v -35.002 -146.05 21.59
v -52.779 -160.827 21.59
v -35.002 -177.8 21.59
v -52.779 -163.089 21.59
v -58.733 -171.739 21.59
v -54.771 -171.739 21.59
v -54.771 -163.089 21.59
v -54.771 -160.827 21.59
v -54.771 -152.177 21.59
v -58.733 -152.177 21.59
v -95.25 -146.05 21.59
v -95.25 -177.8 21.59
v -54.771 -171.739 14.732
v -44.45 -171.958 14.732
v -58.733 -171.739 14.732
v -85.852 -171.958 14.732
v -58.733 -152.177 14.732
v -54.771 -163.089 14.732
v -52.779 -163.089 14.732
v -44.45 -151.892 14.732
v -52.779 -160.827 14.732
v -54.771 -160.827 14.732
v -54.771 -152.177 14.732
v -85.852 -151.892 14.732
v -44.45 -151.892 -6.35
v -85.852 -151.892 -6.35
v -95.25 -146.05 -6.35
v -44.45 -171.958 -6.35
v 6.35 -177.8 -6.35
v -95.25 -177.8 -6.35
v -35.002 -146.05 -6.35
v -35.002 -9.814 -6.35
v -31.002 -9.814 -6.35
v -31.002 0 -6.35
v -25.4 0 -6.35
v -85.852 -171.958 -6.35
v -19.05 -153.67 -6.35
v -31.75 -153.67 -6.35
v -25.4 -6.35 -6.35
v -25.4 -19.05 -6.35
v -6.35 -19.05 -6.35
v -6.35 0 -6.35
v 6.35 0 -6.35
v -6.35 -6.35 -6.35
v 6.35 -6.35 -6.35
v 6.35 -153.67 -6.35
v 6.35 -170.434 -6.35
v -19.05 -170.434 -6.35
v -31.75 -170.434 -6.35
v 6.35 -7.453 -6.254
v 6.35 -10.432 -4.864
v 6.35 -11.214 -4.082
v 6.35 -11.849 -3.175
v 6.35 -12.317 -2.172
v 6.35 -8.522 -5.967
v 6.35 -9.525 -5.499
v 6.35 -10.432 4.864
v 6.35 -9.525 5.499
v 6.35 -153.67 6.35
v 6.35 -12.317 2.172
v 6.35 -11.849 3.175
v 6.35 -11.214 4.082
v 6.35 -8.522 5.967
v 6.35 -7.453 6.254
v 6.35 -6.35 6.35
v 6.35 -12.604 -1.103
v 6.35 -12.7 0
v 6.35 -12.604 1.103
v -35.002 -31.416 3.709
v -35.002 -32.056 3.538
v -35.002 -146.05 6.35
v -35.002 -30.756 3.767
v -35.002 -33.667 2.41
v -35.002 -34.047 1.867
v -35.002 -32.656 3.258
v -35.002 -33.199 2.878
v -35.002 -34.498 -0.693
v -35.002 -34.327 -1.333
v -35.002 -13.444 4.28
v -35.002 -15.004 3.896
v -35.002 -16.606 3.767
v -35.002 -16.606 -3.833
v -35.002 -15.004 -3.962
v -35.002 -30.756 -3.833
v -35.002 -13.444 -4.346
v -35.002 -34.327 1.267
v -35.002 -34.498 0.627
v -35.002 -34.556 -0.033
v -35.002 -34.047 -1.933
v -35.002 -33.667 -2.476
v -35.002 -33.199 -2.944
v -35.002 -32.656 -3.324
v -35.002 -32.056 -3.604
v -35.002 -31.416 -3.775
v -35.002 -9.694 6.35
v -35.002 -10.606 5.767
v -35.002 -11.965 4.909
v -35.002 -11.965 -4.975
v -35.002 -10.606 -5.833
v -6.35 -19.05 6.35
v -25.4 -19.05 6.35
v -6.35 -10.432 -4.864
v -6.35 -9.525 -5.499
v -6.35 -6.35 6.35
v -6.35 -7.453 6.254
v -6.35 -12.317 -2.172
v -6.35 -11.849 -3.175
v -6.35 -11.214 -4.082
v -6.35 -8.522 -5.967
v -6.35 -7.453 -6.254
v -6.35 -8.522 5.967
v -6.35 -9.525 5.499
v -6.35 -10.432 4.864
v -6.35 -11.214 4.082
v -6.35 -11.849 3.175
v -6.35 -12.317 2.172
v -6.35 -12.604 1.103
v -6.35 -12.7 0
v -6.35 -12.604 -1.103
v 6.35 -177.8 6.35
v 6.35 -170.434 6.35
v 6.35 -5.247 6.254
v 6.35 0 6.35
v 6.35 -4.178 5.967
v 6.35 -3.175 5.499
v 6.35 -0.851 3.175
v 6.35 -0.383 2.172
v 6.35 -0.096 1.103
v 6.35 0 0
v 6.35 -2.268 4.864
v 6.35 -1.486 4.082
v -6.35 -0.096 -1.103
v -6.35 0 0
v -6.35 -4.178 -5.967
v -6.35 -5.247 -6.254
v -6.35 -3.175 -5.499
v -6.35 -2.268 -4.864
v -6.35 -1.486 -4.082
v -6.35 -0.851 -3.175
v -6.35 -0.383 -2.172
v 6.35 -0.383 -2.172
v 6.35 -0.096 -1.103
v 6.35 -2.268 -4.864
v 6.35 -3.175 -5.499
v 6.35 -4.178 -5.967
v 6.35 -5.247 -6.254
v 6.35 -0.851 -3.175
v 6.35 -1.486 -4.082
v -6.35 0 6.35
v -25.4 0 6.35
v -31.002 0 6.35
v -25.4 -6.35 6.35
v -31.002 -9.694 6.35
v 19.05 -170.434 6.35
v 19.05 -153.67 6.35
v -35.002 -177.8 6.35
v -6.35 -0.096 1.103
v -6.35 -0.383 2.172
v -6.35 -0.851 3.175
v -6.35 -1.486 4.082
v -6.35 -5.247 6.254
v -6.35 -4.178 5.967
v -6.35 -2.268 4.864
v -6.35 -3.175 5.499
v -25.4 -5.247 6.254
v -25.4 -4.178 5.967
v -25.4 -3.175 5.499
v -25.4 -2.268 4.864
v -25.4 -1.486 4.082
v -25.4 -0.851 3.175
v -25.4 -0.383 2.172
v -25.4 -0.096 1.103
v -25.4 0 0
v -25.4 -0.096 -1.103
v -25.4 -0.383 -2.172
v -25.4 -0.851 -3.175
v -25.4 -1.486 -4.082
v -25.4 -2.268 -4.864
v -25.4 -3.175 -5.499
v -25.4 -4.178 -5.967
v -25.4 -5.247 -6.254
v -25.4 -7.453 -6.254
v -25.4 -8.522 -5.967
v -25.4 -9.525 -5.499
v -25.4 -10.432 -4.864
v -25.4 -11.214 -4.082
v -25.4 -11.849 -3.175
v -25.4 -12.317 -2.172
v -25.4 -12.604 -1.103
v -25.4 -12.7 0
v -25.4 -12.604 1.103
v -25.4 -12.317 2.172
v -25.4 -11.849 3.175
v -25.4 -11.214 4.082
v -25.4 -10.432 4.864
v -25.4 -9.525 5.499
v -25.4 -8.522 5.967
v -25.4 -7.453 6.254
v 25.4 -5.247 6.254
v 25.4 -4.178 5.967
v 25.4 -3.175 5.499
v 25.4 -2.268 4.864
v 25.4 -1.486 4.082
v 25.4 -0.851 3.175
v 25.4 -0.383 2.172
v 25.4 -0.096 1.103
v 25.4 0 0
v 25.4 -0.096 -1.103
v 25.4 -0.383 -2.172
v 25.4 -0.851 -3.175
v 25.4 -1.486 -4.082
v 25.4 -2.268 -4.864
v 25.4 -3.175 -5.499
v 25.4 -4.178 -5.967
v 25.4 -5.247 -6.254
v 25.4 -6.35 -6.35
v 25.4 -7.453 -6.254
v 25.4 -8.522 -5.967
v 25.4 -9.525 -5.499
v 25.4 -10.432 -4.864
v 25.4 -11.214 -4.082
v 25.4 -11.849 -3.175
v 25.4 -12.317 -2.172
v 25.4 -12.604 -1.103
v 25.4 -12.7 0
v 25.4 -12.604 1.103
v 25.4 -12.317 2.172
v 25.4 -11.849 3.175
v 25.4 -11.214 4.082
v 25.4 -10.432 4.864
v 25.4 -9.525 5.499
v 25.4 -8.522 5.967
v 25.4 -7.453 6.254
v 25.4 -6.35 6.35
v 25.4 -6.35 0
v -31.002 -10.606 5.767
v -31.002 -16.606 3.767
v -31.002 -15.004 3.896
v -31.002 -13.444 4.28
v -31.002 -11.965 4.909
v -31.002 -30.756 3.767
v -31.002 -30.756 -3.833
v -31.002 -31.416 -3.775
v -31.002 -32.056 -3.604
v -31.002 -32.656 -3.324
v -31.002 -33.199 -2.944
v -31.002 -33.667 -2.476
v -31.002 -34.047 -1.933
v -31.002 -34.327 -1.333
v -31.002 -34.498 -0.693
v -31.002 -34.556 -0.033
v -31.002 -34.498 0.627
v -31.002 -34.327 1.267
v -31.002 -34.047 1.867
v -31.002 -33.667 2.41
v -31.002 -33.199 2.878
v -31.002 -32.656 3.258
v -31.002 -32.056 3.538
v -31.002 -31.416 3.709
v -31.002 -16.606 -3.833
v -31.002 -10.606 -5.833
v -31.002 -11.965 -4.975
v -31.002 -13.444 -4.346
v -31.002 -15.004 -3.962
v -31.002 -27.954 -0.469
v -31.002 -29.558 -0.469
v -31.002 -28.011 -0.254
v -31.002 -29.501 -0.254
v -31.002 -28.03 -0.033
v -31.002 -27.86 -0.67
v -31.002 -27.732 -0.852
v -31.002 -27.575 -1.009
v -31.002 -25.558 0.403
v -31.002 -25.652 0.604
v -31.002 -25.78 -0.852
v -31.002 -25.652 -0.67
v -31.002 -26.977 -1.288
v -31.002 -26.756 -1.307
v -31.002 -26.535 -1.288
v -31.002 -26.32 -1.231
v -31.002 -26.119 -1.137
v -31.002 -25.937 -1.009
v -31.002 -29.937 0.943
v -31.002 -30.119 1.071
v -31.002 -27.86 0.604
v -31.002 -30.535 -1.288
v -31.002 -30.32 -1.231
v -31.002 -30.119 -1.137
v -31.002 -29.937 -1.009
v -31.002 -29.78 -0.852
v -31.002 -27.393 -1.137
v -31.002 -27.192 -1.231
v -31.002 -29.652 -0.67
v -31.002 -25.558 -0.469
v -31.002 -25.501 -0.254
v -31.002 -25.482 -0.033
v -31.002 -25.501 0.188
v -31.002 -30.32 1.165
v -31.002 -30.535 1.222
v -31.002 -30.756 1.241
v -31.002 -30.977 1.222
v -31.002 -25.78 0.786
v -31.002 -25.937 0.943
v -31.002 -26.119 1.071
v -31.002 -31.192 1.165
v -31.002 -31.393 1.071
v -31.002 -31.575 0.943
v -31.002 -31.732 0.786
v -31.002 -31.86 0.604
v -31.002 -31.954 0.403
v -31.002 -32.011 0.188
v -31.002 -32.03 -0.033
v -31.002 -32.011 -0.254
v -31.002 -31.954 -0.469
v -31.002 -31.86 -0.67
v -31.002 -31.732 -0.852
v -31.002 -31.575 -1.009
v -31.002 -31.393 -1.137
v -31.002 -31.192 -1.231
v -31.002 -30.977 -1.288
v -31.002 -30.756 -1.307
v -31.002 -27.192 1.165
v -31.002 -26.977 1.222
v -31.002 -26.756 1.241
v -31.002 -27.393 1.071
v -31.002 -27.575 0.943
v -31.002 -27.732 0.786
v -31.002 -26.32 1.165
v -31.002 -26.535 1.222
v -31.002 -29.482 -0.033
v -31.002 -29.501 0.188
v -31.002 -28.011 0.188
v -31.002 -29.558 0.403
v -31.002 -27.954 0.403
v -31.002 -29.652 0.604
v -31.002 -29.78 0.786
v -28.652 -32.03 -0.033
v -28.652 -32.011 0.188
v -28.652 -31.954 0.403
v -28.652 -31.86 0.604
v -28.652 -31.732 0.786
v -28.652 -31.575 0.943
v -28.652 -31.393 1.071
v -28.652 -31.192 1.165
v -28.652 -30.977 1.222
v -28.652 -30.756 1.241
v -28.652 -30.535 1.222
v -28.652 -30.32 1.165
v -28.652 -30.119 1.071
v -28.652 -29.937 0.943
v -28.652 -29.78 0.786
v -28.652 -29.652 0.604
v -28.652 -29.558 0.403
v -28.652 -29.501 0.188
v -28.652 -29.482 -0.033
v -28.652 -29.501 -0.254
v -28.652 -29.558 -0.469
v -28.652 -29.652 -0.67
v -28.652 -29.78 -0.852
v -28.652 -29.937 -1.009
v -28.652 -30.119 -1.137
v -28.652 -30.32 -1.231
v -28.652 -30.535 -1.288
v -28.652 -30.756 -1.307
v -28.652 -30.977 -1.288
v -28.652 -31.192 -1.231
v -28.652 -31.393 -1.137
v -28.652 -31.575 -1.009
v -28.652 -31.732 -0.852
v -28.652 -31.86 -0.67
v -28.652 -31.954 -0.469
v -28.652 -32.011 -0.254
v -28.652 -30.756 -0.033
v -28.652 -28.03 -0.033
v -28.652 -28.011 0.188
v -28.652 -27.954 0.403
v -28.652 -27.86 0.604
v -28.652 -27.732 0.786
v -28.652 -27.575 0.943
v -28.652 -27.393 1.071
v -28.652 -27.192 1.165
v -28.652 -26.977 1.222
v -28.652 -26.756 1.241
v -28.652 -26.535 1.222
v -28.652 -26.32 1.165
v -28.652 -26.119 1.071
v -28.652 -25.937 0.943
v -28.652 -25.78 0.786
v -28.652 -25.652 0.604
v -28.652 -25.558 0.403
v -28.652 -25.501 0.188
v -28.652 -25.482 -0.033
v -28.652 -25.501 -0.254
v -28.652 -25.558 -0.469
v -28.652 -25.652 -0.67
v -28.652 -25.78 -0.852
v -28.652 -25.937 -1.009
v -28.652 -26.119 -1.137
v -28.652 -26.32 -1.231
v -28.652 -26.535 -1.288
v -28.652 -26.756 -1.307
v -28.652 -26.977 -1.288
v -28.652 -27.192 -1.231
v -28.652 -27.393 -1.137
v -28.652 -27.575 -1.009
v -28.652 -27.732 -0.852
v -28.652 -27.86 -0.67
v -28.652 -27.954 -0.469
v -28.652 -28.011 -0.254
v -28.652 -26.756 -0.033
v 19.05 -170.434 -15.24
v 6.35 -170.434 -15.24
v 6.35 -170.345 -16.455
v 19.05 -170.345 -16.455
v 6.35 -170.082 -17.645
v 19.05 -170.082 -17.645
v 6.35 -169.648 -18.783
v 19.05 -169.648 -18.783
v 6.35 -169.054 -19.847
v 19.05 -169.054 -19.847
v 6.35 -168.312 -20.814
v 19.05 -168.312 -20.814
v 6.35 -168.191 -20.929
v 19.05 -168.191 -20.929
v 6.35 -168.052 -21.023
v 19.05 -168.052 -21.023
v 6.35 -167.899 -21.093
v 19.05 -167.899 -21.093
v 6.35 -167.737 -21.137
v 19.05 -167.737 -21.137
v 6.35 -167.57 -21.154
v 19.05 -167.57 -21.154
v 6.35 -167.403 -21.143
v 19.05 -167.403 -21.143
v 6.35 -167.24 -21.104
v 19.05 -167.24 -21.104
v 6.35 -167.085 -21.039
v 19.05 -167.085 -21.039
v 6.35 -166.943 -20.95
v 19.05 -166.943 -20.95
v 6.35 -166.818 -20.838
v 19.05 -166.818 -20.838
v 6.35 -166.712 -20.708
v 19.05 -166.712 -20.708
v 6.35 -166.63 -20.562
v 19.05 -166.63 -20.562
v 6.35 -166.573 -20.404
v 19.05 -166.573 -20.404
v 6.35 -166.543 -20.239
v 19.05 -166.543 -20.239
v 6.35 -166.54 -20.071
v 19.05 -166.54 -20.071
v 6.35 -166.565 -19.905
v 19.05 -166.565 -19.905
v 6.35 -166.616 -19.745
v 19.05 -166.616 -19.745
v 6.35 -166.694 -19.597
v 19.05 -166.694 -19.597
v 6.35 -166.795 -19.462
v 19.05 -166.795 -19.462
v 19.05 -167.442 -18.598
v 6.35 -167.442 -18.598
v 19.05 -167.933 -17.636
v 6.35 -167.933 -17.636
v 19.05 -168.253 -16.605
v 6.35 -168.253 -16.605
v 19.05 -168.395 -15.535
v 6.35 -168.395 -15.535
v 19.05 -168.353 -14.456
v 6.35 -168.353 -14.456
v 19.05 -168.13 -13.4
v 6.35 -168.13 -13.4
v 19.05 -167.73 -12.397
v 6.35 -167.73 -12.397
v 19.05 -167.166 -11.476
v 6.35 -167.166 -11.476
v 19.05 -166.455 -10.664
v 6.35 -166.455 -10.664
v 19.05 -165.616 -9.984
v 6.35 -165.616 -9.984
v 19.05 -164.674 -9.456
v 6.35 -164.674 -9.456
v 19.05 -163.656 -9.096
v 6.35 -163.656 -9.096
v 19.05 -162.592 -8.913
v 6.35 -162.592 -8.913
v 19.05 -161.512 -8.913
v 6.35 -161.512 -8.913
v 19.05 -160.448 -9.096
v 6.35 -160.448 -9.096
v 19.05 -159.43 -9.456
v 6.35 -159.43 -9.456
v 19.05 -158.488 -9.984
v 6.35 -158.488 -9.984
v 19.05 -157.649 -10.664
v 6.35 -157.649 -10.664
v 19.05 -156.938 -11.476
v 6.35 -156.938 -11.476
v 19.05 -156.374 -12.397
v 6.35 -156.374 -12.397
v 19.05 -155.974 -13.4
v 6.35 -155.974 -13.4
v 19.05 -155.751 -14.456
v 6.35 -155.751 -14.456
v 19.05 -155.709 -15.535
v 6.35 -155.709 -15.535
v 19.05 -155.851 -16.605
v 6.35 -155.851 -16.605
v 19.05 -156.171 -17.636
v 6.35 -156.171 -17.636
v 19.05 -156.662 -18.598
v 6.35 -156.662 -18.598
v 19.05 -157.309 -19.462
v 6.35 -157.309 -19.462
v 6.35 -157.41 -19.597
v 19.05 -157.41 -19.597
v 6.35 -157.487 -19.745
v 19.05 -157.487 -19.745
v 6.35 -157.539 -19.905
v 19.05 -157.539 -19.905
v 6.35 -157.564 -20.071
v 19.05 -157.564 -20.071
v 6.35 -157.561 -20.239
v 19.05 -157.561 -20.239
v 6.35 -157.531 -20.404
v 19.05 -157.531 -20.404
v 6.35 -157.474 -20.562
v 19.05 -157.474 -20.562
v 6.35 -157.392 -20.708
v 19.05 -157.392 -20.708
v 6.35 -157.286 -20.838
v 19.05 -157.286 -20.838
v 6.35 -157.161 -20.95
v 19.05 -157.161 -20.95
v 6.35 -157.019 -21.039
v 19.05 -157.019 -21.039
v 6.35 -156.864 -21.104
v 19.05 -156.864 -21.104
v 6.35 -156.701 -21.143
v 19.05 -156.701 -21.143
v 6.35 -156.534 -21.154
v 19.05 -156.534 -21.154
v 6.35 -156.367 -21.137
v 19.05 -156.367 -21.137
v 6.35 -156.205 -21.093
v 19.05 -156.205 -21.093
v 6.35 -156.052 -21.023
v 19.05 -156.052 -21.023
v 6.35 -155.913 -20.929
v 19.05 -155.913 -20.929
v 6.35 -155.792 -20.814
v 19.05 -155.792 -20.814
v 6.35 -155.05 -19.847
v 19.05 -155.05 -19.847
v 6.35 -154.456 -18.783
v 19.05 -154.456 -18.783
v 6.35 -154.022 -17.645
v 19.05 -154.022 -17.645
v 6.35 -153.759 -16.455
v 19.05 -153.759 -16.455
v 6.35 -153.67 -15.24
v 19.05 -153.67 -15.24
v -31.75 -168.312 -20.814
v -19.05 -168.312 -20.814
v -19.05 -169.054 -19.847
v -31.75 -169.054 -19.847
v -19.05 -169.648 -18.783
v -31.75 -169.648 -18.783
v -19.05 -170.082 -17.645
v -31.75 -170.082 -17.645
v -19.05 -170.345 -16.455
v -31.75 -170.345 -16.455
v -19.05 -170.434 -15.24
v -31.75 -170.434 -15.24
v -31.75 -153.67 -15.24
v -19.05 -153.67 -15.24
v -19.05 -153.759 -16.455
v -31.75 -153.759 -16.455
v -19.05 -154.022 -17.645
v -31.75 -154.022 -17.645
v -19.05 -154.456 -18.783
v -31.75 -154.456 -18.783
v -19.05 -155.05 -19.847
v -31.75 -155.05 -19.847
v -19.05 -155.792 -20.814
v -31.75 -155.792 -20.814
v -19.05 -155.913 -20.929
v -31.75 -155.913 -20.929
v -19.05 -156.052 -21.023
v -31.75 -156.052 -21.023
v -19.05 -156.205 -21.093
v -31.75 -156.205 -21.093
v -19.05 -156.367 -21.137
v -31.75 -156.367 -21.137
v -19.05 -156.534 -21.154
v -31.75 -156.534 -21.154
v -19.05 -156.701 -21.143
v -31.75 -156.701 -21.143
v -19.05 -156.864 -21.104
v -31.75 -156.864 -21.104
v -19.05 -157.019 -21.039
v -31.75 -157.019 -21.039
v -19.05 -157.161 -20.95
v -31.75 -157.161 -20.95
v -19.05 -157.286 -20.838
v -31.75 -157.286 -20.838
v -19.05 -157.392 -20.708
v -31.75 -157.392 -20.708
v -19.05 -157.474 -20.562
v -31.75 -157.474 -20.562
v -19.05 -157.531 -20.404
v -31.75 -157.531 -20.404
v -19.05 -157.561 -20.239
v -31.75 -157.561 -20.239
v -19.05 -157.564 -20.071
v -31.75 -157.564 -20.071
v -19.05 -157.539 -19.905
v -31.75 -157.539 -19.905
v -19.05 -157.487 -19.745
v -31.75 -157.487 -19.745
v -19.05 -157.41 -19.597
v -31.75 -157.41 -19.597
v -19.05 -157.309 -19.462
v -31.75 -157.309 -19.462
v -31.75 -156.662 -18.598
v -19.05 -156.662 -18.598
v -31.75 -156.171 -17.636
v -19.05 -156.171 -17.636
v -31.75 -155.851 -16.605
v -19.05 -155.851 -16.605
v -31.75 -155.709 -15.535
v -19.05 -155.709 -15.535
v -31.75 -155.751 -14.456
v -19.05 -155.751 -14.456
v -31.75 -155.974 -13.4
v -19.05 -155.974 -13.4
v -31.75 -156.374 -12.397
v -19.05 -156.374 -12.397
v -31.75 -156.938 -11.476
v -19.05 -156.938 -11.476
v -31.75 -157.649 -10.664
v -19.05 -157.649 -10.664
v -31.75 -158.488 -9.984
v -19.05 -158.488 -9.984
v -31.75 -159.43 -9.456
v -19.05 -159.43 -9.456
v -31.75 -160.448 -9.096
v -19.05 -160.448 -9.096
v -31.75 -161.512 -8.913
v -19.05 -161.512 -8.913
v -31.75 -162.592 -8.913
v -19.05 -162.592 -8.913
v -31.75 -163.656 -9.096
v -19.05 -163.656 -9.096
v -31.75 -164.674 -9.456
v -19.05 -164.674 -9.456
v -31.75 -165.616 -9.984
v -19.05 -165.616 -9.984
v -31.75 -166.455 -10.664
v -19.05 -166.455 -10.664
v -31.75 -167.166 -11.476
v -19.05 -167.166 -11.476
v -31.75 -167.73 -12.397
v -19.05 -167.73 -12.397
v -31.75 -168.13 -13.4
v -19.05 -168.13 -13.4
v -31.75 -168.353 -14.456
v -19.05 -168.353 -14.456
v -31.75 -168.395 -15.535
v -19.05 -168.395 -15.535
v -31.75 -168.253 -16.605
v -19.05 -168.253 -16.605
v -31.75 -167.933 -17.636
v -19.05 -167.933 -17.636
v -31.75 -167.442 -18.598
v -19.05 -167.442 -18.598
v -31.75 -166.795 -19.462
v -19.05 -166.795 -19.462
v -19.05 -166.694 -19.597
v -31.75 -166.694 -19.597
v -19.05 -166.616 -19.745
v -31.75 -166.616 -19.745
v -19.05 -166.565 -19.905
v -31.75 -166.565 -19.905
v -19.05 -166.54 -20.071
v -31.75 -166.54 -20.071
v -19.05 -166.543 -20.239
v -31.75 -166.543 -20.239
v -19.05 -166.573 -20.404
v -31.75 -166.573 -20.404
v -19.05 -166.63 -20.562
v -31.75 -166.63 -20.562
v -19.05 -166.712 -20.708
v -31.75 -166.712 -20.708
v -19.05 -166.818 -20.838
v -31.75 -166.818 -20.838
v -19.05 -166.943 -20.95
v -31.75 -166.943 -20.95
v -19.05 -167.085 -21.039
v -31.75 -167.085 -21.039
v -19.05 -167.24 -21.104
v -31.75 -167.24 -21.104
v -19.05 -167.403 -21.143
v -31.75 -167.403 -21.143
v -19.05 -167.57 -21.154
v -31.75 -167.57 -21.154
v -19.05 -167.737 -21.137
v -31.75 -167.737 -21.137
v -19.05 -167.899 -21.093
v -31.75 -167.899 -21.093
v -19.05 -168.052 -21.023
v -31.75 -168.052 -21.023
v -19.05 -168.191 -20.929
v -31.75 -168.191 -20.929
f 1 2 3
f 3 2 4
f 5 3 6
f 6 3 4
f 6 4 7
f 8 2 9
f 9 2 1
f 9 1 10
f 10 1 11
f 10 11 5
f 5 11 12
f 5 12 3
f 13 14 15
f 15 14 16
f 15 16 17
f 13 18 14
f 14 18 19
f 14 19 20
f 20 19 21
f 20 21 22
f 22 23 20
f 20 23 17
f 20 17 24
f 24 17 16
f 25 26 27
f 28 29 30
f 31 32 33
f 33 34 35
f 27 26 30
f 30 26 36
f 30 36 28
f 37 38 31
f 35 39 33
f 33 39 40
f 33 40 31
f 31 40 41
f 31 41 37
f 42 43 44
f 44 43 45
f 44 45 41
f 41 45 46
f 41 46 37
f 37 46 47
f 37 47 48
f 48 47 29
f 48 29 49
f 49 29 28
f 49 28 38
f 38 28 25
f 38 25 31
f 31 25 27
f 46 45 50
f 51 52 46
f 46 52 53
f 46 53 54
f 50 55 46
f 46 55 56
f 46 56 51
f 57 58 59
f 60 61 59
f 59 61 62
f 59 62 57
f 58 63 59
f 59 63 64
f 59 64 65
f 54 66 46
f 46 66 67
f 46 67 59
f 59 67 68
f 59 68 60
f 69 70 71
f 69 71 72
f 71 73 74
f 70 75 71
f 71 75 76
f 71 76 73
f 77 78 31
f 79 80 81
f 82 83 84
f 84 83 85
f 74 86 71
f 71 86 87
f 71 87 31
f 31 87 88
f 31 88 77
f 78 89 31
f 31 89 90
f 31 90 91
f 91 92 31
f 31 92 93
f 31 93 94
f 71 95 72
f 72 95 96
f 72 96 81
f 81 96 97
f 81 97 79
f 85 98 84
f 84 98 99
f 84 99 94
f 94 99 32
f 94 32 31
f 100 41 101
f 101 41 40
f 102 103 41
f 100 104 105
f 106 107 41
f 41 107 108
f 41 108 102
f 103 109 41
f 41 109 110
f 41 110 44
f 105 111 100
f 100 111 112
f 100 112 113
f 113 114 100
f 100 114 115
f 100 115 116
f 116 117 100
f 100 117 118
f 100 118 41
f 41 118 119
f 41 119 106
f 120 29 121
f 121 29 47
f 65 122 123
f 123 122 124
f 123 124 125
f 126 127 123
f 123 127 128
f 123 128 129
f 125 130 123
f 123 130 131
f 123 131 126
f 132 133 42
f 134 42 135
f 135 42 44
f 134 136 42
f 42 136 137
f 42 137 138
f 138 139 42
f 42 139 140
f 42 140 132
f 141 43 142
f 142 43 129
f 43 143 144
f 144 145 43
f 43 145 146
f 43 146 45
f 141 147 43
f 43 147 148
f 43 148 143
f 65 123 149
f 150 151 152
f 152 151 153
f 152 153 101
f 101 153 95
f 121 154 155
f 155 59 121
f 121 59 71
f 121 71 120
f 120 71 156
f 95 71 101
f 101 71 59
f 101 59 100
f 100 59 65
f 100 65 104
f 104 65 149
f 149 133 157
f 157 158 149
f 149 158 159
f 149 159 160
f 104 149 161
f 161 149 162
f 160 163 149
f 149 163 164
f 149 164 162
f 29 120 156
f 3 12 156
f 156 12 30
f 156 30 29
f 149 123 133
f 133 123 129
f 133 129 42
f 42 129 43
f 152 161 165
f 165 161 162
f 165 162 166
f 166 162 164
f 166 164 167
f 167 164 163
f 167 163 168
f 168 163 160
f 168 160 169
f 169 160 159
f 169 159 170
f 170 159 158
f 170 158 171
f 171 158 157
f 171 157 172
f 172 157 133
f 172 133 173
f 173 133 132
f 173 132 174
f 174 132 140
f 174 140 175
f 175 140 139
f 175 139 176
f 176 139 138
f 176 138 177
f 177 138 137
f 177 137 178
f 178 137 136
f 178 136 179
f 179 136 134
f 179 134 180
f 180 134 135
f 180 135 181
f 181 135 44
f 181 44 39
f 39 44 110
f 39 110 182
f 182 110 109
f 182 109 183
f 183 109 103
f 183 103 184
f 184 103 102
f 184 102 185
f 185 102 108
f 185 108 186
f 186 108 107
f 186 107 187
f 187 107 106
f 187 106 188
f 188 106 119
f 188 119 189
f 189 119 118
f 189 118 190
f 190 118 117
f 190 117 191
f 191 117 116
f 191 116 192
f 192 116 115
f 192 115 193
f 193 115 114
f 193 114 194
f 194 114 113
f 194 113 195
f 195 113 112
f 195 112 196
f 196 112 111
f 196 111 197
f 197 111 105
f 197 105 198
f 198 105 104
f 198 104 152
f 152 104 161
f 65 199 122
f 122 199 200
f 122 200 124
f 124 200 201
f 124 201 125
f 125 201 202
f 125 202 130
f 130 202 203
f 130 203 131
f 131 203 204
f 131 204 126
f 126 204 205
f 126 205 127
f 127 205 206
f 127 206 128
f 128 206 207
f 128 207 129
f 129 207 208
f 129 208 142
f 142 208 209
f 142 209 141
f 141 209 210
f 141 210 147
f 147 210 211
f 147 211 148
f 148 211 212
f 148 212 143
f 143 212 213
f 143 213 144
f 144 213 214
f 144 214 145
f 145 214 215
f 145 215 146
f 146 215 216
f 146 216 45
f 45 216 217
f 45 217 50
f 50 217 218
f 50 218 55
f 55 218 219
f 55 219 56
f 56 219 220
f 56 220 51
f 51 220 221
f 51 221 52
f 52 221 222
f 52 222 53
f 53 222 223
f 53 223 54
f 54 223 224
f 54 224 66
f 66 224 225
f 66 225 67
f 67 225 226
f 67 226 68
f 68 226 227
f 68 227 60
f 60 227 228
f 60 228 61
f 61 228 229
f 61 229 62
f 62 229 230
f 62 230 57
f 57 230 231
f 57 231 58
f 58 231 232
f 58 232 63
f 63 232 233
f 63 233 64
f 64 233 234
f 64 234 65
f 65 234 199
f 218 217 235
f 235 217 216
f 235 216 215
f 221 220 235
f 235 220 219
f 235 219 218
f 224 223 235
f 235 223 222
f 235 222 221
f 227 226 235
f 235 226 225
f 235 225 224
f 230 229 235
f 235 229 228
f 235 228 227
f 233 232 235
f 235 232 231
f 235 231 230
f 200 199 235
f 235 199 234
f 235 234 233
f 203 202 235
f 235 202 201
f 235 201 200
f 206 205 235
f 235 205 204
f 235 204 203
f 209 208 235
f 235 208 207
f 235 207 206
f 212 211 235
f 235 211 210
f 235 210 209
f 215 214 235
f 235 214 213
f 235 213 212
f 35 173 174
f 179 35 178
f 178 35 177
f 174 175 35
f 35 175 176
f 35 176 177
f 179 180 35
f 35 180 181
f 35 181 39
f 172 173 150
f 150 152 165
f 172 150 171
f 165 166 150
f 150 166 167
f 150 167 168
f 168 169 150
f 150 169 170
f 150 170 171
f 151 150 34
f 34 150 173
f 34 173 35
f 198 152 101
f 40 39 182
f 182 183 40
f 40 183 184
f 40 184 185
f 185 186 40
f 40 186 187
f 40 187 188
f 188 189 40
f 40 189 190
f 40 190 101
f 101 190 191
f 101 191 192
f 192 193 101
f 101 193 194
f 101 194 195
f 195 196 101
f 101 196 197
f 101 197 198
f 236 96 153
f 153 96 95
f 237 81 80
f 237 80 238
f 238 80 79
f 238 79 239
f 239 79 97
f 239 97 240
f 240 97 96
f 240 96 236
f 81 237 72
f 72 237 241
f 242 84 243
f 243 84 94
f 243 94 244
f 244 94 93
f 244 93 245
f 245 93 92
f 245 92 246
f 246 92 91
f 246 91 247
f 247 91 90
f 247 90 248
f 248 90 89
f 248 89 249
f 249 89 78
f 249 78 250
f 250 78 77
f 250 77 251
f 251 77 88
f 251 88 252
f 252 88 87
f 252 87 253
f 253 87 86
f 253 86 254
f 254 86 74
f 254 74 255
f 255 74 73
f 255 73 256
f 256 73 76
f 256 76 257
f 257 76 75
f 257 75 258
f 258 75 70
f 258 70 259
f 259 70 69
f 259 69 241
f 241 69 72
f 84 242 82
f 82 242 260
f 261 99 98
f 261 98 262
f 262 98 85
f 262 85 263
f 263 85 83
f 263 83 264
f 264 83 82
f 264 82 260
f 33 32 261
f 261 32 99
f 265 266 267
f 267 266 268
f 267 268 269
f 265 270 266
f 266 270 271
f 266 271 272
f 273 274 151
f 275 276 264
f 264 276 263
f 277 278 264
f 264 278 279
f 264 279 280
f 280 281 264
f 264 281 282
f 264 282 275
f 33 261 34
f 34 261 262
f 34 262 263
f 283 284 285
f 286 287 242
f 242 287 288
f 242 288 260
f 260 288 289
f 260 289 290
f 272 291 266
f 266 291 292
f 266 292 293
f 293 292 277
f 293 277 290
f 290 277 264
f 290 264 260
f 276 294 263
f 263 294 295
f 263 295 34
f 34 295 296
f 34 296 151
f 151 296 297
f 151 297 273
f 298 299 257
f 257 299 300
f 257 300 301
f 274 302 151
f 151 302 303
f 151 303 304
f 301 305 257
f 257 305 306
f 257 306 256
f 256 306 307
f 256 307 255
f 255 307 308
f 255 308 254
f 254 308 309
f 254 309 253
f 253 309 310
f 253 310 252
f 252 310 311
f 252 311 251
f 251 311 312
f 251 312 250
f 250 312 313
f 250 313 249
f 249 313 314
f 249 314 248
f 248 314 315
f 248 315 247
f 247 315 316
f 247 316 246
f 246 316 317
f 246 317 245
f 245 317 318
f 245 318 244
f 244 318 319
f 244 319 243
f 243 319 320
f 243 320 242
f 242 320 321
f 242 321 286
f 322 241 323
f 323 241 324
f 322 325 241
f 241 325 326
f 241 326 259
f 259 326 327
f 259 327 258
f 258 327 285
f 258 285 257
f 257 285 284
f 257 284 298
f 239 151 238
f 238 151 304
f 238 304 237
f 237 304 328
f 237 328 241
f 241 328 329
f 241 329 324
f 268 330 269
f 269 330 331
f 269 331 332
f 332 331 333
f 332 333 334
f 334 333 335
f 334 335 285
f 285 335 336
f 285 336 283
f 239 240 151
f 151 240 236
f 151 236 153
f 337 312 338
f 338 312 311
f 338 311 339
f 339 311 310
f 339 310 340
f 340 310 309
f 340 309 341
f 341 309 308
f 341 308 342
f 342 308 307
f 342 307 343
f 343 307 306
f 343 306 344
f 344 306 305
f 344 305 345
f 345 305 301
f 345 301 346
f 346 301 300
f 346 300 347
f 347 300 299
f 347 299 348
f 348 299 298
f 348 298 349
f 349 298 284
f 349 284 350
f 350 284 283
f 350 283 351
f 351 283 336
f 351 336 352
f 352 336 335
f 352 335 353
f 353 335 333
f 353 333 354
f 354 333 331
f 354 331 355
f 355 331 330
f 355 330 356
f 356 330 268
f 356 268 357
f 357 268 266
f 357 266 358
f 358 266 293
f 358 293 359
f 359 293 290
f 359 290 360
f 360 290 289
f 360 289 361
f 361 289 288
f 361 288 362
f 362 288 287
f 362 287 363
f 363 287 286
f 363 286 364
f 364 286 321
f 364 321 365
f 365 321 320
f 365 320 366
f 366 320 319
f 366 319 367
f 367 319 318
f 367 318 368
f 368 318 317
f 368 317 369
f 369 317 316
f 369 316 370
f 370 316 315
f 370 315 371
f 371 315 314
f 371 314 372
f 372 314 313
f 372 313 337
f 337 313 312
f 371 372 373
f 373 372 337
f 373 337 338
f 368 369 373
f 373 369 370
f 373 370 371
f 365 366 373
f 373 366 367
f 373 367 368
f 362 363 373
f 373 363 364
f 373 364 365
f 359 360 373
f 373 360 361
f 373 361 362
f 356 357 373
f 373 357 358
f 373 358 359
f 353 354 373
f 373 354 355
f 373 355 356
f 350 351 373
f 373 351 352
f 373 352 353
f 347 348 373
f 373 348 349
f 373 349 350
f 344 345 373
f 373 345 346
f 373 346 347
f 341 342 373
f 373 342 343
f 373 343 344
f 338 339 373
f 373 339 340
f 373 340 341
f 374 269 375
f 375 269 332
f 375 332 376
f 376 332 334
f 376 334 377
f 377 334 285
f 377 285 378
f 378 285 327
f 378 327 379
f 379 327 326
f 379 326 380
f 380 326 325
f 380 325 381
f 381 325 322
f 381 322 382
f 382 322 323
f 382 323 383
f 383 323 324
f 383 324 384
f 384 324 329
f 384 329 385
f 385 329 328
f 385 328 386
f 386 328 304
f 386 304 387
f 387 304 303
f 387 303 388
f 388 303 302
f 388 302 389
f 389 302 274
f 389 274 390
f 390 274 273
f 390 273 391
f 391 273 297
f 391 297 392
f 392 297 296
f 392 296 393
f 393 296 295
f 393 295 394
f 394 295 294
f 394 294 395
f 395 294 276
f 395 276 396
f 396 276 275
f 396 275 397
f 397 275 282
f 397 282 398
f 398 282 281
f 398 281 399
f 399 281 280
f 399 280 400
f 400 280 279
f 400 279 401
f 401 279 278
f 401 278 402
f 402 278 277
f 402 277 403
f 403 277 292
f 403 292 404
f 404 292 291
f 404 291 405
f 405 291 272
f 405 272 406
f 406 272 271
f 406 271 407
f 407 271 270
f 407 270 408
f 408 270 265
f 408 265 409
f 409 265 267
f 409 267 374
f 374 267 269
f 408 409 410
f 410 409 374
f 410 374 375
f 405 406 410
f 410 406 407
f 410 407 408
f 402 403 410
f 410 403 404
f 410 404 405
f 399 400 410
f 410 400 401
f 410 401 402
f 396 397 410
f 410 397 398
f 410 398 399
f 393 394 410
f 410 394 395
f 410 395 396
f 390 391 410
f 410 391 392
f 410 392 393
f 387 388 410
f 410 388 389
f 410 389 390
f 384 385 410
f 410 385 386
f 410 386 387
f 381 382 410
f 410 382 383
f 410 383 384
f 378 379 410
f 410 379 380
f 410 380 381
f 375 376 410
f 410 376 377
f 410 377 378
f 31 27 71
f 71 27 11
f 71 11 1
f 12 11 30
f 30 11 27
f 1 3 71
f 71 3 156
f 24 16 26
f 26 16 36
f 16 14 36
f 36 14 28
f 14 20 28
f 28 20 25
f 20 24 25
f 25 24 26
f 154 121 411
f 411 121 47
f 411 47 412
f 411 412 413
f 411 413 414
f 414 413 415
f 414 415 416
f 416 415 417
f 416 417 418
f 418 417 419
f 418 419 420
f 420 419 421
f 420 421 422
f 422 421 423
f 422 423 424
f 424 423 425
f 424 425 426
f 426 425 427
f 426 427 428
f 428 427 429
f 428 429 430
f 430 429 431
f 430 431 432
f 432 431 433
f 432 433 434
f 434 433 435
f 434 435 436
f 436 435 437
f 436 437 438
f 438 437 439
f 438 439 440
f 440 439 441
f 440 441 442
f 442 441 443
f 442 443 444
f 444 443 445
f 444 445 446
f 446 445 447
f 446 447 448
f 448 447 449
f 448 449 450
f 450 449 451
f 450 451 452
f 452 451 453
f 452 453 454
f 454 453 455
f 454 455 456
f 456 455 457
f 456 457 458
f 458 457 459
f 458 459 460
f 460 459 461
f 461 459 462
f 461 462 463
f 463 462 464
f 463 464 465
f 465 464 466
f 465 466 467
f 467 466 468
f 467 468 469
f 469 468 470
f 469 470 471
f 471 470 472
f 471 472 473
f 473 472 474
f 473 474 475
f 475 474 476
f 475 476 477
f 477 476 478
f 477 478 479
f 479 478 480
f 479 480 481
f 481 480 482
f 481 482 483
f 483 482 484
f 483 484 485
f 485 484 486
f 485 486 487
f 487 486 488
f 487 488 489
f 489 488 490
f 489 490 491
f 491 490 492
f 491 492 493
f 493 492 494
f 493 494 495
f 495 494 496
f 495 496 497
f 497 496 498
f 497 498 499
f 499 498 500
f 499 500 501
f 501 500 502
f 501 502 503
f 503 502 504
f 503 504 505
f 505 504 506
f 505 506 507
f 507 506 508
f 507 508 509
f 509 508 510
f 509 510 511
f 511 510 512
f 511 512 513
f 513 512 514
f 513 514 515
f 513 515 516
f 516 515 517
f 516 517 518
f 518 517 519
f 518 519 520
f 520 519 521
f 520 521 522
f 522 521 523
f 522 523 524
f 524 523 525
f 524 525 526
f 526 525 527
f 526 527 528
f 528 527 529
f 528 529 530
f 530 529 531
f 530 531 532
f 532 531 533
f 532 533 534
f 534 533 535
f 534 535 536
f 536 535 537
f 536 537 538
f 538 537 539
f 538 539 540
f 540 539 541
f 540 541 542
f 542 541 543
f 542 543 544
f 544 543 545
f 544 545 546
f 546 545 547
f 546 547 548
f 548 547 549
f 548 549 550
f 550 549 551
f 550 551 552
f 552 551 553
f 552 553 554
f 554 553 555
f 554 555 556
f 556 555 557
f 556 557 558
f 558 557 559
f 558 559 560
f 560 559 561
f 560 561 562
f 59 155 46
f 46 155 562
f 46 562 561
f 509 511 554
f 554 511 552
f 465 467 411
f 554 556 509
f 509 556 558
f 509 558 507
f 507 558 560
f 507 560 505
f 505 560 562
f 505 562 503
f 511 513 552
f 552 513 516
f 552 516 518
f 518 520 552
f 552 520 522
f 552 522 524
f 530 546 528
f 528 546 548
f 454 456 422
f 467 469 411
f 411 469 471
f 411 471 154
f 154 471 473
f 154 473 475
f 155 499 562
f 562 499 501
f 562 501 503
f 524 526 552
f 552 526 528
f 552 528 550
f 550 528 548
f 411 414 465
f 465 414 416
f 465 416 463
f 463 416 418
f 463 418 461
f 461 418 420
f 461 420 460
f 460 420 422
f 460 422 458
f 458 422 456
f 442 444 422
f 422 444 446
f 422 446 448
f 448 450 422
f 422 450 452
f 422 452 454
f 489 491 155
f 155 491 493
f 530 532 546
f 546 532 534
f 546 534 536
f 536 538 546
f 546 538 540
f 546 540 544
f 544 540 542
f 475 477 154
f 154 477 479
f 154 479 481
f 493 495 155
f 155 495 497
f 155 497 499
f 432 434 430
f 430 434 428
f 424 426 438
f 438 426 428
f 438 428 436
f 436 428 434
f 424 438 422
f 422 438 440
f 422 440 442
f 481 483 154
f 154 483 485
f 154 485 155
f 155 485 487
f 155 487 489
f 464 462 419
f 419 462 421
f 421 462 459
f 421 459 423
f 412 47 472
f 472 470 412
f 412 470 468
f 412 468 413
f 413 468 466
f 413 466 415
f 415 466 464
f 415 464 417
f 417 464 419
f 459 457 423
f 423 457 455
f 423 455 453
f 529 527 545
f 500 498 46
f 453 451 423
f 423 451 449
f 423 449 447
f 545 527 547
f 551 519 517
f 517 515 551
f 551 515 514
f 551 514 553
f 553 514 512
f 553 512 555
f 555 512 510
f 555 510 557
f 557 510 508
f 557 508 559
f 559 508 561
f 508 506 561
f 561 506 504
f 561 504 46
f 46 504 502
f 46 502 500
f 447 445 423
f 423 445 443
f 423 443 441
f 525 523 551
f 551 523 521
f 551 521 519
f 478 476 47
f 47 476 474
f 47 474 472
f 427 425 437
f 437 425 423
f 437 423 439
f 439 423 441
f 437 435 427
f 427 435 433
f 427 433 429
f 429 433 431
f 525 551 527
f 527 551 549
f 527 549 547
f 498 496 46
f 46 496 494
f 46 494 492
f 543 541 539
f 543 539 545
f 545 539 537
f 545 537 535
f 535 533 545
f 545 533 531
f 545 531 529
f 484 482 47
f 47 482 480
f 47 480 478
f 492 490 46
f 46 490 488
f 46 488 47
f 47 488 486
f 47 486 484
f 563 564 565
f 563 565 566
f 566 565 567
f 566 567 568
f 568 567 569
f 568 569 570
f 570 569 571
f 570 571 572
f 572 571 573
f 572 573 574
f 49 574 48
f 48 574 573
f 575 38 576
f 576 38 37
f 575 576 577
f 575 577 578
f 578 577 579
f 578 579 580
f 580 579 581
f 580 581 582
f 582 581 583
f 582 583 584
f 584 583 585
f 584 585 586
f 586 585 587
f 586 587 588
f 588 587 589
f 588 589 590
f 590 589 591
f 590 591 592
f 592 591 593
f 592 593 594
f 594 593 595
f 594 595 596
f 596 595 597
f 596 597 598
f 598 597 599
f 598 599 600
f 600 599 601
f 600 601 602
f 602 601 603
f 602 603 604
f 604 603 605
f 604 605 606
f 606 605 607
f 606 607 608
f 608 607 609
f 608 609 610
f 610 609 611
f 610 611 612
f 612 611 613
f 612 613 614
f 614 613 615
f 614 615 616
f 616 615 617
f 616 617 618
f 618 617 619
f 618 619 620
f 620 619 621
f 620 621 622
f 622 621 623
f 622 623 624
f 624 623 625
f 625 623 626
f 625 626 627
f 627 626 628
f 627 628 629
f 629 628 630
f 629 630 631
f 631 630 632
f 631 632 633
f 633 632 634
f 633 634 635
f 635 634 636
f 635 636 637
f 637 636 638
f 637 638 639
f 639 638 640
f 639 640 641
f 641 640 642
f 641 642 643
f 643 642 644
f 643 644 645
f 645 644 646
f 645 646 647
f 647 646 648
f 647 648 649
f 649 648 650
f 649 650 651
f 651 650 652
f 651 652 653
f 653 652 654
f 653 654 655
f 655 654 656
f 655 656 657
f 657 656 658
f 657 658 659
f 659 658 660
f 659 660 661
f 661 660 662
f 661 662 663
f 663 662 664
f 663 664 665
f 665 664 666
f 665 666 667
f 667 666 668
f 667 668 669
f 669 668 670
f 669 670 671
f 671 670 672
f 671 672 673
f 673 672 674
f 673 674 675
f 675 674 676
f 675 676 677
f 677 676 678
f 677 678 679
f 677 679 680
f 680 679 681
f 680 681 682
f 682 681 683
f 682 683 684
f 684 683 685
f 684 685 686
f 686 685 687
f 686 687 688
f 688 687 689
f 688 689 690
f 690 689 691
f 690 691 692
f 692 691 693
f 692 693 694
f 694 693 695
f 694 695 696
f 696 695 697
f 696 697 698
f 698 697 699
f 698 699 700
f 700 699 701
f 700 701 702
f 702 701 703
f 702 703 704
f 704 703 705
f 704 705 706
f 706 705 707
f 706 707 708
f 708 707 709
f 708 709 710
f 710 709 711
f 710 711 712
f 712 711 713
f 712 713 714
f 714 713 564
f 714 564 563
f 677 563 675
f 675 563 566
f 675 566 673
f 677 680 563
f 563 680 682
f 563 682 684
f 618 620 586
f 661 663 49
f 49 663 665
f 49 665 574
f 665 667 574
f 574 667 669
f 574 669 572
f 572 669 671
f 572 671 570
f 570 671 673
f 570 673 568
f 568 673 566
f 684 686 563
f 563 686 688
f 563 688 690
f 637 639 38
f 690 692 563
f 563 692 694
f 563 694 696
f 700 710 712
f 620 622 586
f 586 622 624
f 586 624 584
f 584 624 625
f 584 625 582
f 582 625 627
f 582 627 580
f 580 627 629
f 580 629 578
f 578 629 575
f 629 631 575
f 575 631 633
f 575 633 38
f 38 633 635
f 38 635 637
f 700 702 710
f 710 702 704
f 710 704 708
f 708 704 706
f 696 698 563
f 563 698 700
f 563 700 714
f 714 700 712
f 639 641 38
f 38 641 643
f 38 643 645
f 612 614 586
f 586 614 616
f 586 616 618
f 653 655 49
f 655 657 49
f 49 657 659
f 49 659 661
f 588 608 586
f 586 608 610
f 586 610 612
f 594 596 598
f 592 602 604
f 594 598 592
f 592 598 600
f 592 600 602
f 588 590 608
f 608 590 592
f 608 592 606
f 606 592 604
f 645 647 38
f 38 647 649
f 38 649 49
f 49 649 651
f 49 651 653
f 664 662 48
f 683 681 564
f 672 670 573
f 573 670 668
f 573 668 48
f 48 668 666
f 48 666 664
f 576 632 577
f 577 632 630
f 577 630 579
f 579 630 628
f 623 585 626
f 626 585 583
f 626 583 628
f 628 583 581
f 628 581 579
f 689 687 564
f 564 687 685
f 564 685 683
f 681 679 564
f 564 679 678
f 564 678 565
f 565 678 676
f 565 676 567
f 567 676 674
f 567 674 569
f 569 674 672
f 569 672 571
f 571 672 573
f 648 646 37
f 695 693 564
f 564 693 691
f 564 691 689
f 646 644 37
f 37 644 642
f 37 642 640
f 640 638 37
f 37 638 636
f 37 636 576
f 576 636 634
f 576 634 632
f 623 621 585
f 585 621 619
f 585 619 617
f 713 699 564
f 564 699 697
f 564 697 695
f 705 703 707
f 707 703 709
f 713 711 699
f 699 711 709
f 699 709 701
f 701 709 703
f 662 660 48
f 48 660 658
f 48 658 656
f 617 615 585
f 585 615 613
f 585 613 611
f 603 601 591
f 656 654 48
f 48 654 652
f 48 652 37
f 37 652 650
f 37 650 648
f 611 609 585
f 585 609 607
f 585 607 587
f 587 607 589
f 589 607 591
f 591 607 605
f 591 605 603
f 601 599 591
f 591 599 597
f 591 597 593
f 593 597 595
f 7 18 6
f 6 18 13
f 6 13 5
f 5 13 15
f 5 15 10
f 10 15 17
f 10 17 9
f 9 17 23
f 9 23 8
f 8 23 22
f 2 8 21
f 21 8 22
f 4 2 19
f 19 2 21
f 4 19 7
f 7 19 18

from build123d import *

# Parameters (mm, degrees)
SKETCH1_W           = 12.7
SKETCH1_H           = 12.7
BOSS_EXTRUDE1_DEPTH = 177.8
SKETCH2_R           = 6.35
BOSS_EXTRUDE2_DEPTH = 25.4
SKETCH3_W           = 12.7
SKETCH3_H           = 158.75
BOSS_EXTRUDE3_DEPTH = 28.652
BOSS_EXTRUDE4_START = 19.05
SKETCH4_W           = 12.7
SKETCH4_H           = 19.05
BOSS_EXTRUDE4_DEPTH = 9.602
CUT_EXTRUDE1_START  = -4
SKETCH5_R           = 1.274448637
CUT_EXTRUDE1_DEPTH  = 4
CUT_EXTRUDE2_START  = -6.35
SKETCH5_2_R         = 1.274448637
CUT_EXTRUDE2_DEPTH  = 6.35
SKETCH8_W           = 9.448
SKETCH8_H           = 31.75
SKETCH8_W_2         = 50.8
BOSS_EXTRUDE5_DEPTH = 12.7
SKETCH8_3_W         = 9.448
SKETCH8_3_H         = 31.75
SKETCH8_3_W_2       = 50.8
BOSS_EXTRUDE6_DEPTH = 15.24
SKETCH9_W           = 41.402
SKETCH9_H           = 20.066
CUT_EXTRUDE3_DEPTH  = 21.082
SKETCH7_W           = 12.7
SKETCH7_H           = 16.764
BOSS_EXTRUDE7_DEPTH = 12.7
BOSS_EXTRUDE8_START = -38.1
BOSS_EXTRUDE8_DEPTH = 12.7
SKETCH10_W          = 3.962
SKETCH10_H          = 19.562
SKETCH10_W_2        = 3.2
SKETCH10_H_2        = 18.8
SKETCH10_W_3        = 2.372565257
SKETCH10_H_3        = 2.262
CUT_EXTRUDE4_DEPTH  = 207.185481547


with BuildPart() as part:
    # Sketch1 → Boss-Extrude1 (new body)
    with BuildSketch(Plane(origin=(0, 0, 0), x_dir=(1, 0, 0), z_dir=(0, 1, 0))):
        Rectangle(SKETCH1_W, SKETCH1_H)
    extrude(amount=-BOSS_EXTRUDE1_DEPTH)

    # Sketch2 → Boss-Extrude2 (add, symmetric)
    with BuildSketch(Plane(origin=(0, 0, 0), x_dir=(0, 0, -1), z_dir=(1, 0, 0))):
        with Locations((0, -6.35)):
            Circle(SKETCH2_R)
    extrude(amount=BOSS_EXTRUDE2_DEPTH, both=True)

    # Sketch3 → Boss-Extrude3 (add)
    with BuildSketch(Plane.ZY.offset(6.35)):
        with Locations((0, -98.425)):
            Rectangle(SKETCH3_W, SKETCH3_H)
    extrude(amount=BOSS_EXTRUDE3_DEPTH)

    # Sketch4 → Boss-Extrude4 (add)
    with BuildSketch(Plane.ZY.offset(6.35).offset(BOSS_EXTRUDE4_START)):
        with Locations((0, -9.525)):
            Rectangle(SKETCH4_W, SKETCH4_H)
    extrude(amount=BOSS_EXTRUDE4_DEPTH)

    # Sketch5 → Cut-Extrude1 (cut)
    with BuildSketch(Plane.ZY.offset(35.002).offset(CUT_EXTRUDE1_START)):
        with BuildLine():
            Line((-3.833, -30.756), (-3.833, -16.606))
            ThreePointArc((-3.833, -16.606), (-4.34616702, -13.44372234), (-5.833, -10.606))
            ThreePointArc((-5.833, -10.606), (-6.104434225, -10.218346078), (-6.35, -9.81380986))
            Line((-6.35, -9.81380986), (-6.35, 0))
            Line((-6.35, 0), (-3.697009279, 0))
            Line((-3.697009279, 0), (3.631009279, 0))
            Line((3.631009279, 0), (6.35, 0))
            Line((6.35, 0), (6.35, -9.693995201))
            ThreePointArc((6.35, -9.693995201), (6.075544052, -10.160893028), (5.767, -10.606))
            ThreePointArc((5.767, -10.606), (4.280167019, -13.44372234), (3.767, -16.606))
            Line((3.767, -16.606), (3.767, -30.756))
            ThreePointArc((3.767, -30.756), (-0.033, -34.556), (-3.833, -30.756))
        make_face()
        with Locations(Location((-0.033, -26.756, 0), (0, 0, 270))):
            Circle(SKETCH5_R, mode=Mode.SUBTRACT)
        with Locations(Location((-0.033, -30.756, 0), (0, 0, 270))):
            Circle(SKETCH5_R, mode=Mode.SUBTRACT)
    extrude(amount=CUT_EXTRUDE1_DEPTH, mode=Mode.SUBTRACT)

    # Sketch5<2> → Cut-Extrude2 (cut)
    with BuildSketch(Plane.ZY.offset(35.002).offset(CUT_EXTRUDE2_START)):
        with Locations(Location((-0.033, -26.756, 0), (0, 0, 270))):
            Circle(SKETCH5_2_R)
        with Locations(Location((-0.033, -30.756, 0), (0, 0, 270))):
            Circle(SKETCH5_2_R)
    extrude(amount=CUT_EXTRUDE2_DEPTH, mode=Mode.SUBTRACT)

    # Sketch8 → Boss-Extrude5 (add)
    with BuildSketch(Plane.XY.offset(6.35)):
        with Locations((-39.726, -161.925)):
            Rectangle(SKETCH8_W, SKETCH8_H)
        with Locations((-69.85, -161.925)):
            Rectangle(SKETCH8_W_2, SKETCH8_H)
    extrude(amount=-BOSS_EXTRUDE5_DEPTH)

    # Sketch8<3> → Boss-Extrude6 (add)
    with BuildSketch(Plane.XY.offset(6.35)):
        with Locations((-39.726, -161.925)):
            Rectangle(SKETCH8_3_W, SKETCH8_3_H)
        with Locations((-69.85, -161.925)):
            Rectangle(SKETCH8_3_W_2, SKETCH8_3_H)
    extrude(amount=BOSS_EXTRUDE6_DEPTH)

    # Sketch9 → Cut-Extrude3 (cut)
    with BuildSketch(Plane(origin=(0, 0, -6.35), x_dir=(-1, 0, 0), z_dir=(0, 0, -1))):
        with Locations((65.151, -161.925)):
            Rectangle(SKETCH9_W, SKETCH9_H)
    extrude(amount=-CUT_EXTRUDE3_DEPTH, mode=Mode.SUBTRACT)

    # Sketch7 → Boss-Extrude7 (add)
    with BuildSketch(Plane(origin=(6.35, 0, 0), x_dir=(0, 0, -1), z_dir=(1, 0, 0))):
        with BuildLine():
            Line((6.35, -153.67), (6.35, -170.434))
            Line((6.35, -170.434), (15.24, -170.434))
            ThreePointArc((15.24, -170.434), (18.221863859, -169.885671676), (20.813596386, -168.312427088))
            ThreePointArc((20.813596386, -168.312427088), (20.896848593, -166.878), (19.462421505, -166.794747794))
            ThreePointArc((19.462421505, -166.794747794), (8.89, -162.052), (19.462421505, -157.309252206))
            Line((19.462421505, -157.309252206), (20.813596386, -155.791572912))
            ThreePointArc((20.813596386, -155.791572912), (18.221863859, -154.218328324), (15.24, -153.67))
            Line((15.24, -153.67), (6.35, -153.67))
        make_face()
        with Locations((0, -162.052)):
            Rectangle(SKETCH7_W, SKETCH7_H)
        with BuildLine():
            ThreePointArc((19.462421505, -157.309252206), (20.896848593, -157.226), (20.813596386, -155.791572912))
            Line((20.813596386, -155.791572912), (19.462421505, -157.309252206))
        make_face()
    extrude(amount=BOSS_EXTRUDE7_DEPTH)

    # Sketch7<4> → Boss-Extrude8 (add)
    with BuildSketch(Plane(origin=(6.35, 0, 0), x_dir=(0, 0, -1), z_dir=(1, 0, 0)).offset(BOSS_EXTRUDE8_START)):
        with BuildLine():
            Line((6.35, -153.67), (6.35, -170.434))
            Line((6.35, -170.434), (15.24, -170.434))
            ThreePointArc((15.24, -170.434), (18.221863859, -169.885671676), (20.813596386, -168.312427088))
            ThreePointArc((20.813596386, -168.312427088), (20.896848593, -166.878), (19.462421505, -166.794747794))
            ThreePointArc((19.462421505, -166.794747794), (8.89, -162.052), (19.462421505, -157.309252206))
            ThreePointArc((19.462421505, -157.309252206), (20.896848593, -157.226), (20.813596386, -155.791572912))
            ThreePointArc((20.813596386, -155.791572912), (18.221863859, -154.218328324), (15.24, -153.67))
            Line((15.24, -153.67), (6.35, -153.67))
        make_face()
    extrude(amount=BOSS_EXTRUDE8_DEPTH)

    # Sketch10 → Cut-Extrude4 (cut, through all)
    # profile 1 of 2: a face of its own
    with BuildSketch(Plane.XY.offset(21.59)):
        with Locations((-56.752, -161.958)):
            Rectangle(SKETCH10_W, SKETCH10_H)
        with Locations((-56.752, -161.958)):
            Rectangle(SKETCH10_W_2, SKETCH10_H_2, mode=Mode.SUBTRACT)
    # profile 2 of 2: a face of its own
    with BuildSketch(Plane.XY.offset(21.59)):
        with Locations((-53.965717372, -161.958)):
            Rectangle(SKETCH10_W_3, SKETCH10_H_3)
    extrude(amount=-CUT_EXTRUDE4_DEPTH, mode=Mode.SUBTRACT)


with BuildPart() as cut_extrude4_kept_piece:
    # of the separate pieces the step leaves, the one the design keeps (cut_extrude4_pieces_kept)
    add(part.part.solids().sort_by_distance((-6.35, 0, 6.35))[0])


solid = cut_extrude4_kept_piece.part
